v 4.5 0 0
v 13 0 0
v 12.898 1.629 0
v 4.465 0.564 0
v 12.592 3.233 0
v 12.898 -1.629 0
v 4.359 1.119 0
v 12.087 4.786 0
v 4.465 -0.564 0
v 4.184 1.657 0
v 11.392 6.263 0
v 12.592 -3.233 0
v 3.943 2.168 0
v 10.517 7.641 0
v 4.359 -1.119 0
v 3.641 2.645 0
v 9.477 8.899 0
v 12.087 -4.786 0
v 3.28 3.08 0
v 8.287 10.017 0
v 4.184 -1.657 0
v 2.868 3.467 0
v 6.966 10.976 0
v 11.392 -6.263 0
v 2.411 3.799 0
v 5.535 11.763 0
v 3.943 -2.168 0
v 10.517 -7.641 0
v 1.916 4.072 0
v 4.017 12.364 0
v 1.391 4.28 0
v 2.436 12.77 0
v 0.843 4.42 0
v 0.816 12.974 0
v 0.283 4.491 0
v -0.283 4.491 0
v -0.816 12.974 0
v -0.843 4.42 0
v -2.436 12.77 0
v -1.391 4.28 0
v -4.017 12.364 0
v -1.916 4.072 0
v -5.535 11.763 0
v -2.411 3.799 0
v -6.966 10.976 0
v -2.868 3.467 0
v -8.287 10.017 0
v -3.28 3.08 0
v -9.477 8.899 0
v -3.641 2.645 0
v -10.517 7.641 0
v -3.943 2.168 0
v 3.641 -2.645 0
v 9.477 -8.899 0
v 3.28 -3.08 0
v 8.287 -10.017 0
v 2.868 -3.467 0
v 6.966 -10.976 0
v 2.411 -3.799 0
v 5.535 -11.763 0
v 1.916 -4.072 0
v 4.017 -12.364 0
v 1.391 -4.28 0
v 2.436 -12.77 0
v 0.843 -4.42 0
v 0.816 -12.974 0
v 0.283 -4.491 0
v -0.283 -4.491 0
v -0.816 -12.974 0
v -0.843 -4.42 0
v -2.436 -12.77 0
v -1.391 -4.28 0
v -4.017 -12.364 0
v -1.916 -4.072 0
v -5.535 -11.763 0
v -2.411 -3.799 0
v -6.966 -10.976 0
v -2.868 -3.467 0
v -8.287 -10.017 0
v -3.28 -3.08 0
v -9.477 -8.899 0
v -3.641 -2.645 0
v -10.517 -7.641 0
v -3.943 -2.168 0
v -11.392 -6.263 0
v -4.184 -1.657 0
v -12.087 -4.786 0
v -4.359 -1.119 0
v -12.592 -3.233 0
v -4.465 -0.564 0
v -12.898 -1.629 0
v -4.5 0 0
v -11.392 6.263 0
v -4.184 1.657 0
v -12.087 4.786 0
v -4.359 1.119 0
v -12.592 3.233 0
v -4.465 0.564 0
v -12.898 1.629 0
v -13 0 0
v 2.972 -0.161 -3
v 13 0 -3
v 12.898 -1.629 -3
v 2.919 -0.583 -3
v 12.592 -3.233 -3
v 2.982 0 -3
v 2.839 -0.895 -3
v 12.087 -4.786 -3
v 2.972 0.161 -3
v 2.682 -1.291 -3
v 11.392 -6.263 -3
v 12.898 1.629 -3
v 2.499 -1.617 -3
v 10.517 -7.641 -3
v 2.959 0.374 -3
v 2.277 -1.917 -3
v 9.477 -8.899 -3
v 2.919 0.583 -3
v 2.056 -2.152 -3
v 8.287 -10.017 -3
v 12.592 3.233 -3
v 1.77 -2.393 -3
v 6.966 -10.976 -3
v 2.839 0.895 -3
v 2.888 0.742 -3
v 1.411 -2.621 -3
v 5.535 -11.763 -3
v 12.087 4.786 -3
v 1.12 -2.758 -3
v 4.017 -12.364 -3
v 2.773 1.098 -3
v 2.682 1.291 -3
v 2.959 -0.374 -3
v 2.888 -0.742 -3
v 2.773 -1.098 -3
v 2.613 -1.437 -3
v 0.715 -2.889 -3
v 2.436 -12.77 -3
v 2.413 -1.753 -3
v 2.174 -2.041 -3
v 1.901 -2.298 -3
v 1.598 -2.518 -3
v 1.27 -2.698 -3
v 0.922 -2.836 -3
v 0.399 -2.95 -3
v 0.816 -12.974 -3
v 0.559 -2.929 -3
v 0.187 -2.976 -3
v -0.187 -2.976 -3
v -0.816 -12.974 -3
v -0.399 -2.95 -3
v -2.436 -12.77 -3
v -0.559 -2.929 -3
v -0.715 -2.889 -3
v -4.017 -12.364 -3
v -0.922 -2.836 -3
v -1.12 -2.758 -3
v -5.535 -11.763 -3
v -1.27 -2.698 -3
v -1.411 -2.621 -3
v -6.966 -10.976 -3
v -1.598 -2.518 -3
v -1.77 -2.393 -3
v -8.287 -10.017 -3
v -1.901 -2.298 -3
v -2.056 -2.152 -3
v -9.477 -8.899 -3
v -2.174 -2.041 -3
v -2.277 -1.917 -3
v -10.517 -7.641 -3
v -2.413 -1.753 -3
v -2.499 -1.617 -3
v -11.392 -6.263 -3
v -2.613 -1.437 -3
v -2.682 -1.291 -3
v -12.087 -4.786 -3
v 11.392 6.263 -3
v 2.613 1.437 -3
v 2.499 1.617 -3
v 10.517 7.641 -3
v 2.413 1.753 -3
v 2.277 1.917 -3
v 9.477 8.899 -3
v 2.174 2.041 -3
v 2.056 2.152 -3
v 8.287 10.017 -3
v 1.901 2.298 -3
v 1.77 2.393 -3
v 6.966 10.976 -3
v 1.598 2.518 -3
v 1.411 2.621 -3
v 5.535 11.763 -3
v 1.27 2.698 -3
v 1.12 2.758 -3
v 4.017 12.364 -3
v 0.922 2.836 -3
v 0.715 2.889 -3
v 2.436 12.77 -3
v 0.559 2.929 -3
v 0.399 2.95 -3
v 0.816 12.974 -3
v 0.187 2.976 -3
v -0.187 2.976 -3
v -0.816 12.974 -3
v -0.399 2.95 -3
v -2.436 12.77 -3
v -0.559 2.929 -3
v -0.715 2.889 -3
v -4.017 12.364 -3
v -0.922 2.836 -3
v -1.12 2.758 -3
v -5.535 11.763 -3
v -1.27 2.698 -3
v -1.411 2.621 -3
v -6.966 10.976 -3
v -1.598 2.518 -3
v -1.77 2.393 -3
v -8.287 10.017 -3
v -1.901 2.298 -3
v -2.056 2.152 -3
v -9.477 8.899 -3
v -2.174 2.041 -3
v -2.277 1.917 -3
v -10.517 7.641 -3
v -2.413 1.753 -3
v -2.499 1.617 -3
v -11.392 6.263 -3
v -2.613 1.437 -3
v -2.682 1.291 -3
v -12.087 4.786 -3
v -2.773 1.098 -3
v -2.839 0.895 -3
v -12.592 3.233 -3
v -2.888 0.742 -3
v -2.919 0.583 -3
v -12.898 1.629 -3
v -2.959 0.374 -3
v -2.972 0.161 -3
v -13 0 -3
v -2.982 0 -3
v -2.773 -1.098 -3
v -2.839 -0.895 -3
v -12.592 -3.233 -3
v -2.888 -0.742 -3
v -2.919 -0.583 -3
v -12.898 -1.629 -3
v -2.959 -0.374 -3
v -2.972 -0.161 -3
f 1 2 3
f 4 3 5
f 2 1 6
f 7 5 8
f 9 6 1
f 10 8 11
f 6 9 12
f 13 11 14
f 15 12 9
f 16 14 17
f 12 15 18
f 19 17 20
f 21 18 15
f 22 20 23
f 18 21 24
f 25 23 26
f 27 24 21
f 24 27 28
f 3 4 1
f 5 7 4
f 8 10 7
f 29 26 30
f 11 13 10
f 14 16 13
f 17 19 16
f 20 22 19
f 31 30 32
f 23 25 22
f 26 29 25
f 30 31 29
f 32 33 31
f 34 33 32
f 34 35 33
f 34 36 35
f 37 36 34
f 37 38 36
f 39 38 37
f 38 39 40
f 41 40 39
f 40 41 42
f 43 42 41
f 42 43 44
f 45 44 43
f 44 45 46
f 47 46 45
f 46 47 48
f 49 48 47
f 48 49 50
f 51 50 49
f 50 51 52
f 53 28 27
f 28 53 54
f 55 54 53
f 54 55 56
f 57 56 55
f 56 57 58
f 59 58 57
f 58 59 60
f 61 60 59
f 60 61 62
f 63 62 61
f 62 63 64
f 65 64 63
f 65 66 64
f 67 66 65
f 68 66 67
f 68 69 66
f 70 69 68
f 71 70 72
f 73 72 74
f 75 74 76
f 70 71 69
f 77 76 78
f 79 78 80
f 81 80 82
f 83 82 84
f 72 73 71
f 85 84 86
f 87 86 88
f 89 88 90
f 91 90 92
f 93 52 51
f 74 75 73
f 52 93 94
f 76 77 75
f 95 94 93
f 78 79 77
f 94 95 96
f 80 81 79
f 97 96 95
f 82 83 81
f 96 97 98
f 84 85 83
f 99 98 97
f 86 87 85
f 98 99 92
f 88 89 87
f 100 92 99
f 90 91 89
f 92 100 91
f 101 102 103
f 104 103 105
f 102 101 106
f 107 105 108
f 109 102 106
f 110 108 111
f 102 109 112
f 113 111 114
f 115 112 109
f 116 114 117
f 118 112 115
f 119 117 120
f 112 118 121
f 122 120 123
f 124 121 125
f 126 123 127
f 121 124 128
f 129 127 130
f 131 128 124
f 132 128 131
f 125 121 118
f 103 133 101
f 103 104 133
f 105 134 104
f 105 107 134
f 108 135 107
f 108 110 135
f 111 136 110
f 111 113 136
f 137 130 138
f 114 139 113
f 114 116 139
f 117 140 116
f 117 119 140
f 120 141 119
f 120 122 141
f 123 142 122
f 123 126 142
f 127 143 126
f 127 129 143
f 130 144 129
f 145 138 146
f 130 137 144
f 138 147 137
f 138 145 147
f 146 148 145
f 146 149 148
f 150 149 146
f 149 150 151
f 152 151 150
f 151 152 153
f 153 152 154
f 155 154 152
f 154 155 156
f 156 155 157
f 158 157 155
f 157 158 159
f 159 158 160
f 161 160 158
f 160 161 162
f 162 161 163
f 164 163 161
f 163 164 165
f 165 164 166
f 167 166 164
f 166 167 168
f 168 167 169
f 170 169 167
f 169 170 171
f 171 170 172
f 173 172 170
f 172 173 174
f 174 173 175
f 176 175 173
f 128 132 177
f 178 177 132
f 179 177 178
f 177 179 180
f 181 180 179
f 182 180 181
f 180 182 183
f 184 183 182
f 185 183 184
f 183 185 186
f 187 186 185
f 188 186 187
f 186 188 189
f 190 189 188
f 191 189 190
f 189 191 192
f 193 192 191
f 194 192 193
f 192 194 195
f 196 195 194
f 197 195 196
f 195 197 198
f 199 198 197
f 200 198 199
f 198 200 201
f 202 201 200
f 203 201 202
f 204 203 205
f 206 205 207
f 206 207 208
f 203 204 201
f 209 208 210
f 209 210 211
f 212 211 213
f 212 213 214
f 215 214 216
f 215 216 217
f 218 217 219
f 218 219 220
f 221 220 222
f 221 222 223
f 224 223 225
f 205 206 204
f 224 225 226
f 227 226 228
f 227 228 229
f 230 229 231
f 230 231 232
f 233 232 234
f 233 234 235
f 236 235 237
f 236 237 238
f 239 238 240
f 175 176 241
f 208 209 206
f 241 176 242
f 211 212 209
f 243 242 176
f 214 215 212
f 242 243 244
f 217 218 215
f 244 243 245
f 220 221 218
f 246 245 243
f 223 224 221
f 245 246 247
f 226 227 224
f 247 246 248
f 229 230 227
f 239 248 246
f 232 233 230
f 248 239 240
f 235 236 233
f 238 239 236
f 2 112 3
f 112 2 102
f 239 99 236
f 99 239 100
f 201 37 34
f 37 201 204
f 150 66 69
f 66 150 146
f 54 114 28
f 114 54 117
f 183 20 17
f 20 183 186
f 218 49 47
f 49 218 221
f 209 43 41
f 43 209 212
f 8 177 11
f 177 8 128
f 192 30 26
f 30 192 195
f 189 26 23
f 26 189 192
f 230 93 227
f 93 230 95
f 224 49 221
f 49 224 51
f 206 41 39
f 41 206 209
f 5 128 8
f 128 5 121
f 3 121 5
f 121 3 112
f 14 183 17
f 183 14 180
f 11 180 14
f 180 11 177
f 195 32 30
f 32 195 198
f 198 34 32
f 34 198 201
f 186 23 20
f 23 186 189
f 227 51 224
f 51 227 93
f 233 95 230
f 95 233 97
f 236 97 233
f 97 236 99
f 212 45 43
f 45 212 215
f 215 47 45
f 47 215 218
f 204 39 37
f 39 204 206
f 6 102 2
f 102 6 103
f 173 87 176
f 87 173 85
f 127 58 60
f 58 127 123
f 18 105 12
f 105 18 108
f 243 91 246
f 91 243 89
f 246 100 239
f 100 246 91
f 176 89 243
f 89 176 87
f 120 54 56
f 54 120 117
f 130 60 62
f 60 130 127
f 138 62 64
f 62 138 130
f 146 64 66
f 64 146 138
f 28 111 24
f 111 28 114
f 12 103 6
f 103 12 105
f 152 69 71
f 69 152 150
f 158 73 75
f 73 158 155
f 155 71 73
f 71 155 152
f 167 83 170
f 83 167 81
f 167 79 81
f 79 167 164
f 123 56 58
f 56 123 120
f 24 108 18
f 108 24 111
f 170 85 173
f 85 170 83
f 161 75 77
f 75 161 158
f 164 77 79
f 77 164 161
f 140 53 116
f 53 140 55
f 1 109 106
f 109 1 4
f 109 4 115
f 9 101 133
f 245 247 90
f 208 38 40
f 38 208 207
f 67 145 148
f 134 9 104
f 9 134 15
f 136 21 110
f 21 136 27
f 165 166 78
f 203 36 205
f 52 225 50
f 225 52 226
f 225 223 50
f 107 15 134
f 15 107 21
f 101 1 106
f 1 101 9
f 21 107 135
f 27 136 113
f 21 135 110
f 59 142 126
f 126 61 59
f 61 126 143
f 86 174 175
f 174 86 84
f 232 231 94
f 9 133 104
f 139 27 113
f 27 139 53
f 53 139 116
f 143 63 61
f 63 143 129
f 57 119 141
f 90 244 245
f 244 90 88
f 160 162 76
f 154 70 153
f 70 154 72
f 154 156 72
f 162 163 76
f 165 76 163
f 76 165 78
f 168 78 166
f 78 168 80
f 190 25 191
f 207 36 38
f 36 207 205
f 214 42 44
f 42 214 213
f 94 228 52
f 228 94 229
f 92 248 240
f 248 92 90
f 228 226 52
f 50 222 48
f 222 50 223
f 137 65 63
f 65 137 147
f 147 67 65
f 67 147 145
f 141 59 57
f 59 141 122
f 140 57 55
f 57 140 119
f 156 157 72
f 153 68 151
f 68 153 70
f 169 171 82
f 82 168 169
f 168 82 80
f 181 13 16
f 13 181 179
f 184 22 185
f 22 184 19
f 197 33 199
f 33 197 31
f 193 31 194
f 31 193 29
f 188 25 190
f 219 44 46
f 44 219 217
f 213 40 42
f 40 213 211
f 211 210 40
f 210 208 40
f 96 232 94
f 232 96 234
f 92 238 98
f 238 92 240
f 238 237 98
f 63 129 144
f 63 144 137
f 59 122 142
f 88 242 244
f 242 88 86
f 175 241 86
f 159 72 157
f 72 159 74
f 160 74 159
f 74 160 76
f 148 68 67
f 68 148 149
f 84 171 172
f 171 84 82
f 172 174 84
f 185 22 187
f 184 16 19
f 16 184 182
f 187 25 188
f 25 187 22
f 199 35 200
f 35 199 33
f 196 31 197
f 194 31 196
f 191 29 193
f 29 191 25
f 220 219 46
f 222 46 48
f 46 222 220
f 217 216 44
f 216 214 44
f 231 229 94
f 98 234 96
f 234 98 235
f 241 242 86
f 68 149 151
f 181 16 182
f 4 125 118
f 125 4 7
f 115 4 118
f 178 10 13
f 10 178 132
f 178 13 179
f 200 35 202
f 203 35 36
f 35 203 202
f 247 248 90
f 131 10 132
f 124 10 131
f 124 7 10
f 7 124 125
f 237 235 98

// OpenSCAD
$fn = 50;


difference() {
	union() {
		translate(v = [0, 0, -3.0000000000]) {
			cylinder(h = 3, r = 7.0000000000);
		}
		translate(v = [0, 0, -3.0000000000]) {
			cylinder(h = 3, r = 13.0000000000);
		}
	}
	union() {
		translate(v = [0, 0, 0]) {
			rotate(a = [0, 0, 0]) {
				difference() {
					union() {
						#translate(v = [0, 0, -3.0000000000]) {
							cylinder(h = 3, r = 2.2500000000);
						}
						#translate(v = [0, 0, -4.2000000000]) {
							cylinder(h = 4.2000000000, r1 = 2.3750000000, r2 = 4.5000000000);
						}
						#translate(v = [0, 0, -3.0000000000]) {
							cylinder(h = 3, r = 2.3750000000);
						}
						#translate(v = [0, 0, -3.0000000000]) {
							cylinder(h = 3, r = 2.2500000000);
						}
					}
					union();
				}
			}
		}
	}
}
